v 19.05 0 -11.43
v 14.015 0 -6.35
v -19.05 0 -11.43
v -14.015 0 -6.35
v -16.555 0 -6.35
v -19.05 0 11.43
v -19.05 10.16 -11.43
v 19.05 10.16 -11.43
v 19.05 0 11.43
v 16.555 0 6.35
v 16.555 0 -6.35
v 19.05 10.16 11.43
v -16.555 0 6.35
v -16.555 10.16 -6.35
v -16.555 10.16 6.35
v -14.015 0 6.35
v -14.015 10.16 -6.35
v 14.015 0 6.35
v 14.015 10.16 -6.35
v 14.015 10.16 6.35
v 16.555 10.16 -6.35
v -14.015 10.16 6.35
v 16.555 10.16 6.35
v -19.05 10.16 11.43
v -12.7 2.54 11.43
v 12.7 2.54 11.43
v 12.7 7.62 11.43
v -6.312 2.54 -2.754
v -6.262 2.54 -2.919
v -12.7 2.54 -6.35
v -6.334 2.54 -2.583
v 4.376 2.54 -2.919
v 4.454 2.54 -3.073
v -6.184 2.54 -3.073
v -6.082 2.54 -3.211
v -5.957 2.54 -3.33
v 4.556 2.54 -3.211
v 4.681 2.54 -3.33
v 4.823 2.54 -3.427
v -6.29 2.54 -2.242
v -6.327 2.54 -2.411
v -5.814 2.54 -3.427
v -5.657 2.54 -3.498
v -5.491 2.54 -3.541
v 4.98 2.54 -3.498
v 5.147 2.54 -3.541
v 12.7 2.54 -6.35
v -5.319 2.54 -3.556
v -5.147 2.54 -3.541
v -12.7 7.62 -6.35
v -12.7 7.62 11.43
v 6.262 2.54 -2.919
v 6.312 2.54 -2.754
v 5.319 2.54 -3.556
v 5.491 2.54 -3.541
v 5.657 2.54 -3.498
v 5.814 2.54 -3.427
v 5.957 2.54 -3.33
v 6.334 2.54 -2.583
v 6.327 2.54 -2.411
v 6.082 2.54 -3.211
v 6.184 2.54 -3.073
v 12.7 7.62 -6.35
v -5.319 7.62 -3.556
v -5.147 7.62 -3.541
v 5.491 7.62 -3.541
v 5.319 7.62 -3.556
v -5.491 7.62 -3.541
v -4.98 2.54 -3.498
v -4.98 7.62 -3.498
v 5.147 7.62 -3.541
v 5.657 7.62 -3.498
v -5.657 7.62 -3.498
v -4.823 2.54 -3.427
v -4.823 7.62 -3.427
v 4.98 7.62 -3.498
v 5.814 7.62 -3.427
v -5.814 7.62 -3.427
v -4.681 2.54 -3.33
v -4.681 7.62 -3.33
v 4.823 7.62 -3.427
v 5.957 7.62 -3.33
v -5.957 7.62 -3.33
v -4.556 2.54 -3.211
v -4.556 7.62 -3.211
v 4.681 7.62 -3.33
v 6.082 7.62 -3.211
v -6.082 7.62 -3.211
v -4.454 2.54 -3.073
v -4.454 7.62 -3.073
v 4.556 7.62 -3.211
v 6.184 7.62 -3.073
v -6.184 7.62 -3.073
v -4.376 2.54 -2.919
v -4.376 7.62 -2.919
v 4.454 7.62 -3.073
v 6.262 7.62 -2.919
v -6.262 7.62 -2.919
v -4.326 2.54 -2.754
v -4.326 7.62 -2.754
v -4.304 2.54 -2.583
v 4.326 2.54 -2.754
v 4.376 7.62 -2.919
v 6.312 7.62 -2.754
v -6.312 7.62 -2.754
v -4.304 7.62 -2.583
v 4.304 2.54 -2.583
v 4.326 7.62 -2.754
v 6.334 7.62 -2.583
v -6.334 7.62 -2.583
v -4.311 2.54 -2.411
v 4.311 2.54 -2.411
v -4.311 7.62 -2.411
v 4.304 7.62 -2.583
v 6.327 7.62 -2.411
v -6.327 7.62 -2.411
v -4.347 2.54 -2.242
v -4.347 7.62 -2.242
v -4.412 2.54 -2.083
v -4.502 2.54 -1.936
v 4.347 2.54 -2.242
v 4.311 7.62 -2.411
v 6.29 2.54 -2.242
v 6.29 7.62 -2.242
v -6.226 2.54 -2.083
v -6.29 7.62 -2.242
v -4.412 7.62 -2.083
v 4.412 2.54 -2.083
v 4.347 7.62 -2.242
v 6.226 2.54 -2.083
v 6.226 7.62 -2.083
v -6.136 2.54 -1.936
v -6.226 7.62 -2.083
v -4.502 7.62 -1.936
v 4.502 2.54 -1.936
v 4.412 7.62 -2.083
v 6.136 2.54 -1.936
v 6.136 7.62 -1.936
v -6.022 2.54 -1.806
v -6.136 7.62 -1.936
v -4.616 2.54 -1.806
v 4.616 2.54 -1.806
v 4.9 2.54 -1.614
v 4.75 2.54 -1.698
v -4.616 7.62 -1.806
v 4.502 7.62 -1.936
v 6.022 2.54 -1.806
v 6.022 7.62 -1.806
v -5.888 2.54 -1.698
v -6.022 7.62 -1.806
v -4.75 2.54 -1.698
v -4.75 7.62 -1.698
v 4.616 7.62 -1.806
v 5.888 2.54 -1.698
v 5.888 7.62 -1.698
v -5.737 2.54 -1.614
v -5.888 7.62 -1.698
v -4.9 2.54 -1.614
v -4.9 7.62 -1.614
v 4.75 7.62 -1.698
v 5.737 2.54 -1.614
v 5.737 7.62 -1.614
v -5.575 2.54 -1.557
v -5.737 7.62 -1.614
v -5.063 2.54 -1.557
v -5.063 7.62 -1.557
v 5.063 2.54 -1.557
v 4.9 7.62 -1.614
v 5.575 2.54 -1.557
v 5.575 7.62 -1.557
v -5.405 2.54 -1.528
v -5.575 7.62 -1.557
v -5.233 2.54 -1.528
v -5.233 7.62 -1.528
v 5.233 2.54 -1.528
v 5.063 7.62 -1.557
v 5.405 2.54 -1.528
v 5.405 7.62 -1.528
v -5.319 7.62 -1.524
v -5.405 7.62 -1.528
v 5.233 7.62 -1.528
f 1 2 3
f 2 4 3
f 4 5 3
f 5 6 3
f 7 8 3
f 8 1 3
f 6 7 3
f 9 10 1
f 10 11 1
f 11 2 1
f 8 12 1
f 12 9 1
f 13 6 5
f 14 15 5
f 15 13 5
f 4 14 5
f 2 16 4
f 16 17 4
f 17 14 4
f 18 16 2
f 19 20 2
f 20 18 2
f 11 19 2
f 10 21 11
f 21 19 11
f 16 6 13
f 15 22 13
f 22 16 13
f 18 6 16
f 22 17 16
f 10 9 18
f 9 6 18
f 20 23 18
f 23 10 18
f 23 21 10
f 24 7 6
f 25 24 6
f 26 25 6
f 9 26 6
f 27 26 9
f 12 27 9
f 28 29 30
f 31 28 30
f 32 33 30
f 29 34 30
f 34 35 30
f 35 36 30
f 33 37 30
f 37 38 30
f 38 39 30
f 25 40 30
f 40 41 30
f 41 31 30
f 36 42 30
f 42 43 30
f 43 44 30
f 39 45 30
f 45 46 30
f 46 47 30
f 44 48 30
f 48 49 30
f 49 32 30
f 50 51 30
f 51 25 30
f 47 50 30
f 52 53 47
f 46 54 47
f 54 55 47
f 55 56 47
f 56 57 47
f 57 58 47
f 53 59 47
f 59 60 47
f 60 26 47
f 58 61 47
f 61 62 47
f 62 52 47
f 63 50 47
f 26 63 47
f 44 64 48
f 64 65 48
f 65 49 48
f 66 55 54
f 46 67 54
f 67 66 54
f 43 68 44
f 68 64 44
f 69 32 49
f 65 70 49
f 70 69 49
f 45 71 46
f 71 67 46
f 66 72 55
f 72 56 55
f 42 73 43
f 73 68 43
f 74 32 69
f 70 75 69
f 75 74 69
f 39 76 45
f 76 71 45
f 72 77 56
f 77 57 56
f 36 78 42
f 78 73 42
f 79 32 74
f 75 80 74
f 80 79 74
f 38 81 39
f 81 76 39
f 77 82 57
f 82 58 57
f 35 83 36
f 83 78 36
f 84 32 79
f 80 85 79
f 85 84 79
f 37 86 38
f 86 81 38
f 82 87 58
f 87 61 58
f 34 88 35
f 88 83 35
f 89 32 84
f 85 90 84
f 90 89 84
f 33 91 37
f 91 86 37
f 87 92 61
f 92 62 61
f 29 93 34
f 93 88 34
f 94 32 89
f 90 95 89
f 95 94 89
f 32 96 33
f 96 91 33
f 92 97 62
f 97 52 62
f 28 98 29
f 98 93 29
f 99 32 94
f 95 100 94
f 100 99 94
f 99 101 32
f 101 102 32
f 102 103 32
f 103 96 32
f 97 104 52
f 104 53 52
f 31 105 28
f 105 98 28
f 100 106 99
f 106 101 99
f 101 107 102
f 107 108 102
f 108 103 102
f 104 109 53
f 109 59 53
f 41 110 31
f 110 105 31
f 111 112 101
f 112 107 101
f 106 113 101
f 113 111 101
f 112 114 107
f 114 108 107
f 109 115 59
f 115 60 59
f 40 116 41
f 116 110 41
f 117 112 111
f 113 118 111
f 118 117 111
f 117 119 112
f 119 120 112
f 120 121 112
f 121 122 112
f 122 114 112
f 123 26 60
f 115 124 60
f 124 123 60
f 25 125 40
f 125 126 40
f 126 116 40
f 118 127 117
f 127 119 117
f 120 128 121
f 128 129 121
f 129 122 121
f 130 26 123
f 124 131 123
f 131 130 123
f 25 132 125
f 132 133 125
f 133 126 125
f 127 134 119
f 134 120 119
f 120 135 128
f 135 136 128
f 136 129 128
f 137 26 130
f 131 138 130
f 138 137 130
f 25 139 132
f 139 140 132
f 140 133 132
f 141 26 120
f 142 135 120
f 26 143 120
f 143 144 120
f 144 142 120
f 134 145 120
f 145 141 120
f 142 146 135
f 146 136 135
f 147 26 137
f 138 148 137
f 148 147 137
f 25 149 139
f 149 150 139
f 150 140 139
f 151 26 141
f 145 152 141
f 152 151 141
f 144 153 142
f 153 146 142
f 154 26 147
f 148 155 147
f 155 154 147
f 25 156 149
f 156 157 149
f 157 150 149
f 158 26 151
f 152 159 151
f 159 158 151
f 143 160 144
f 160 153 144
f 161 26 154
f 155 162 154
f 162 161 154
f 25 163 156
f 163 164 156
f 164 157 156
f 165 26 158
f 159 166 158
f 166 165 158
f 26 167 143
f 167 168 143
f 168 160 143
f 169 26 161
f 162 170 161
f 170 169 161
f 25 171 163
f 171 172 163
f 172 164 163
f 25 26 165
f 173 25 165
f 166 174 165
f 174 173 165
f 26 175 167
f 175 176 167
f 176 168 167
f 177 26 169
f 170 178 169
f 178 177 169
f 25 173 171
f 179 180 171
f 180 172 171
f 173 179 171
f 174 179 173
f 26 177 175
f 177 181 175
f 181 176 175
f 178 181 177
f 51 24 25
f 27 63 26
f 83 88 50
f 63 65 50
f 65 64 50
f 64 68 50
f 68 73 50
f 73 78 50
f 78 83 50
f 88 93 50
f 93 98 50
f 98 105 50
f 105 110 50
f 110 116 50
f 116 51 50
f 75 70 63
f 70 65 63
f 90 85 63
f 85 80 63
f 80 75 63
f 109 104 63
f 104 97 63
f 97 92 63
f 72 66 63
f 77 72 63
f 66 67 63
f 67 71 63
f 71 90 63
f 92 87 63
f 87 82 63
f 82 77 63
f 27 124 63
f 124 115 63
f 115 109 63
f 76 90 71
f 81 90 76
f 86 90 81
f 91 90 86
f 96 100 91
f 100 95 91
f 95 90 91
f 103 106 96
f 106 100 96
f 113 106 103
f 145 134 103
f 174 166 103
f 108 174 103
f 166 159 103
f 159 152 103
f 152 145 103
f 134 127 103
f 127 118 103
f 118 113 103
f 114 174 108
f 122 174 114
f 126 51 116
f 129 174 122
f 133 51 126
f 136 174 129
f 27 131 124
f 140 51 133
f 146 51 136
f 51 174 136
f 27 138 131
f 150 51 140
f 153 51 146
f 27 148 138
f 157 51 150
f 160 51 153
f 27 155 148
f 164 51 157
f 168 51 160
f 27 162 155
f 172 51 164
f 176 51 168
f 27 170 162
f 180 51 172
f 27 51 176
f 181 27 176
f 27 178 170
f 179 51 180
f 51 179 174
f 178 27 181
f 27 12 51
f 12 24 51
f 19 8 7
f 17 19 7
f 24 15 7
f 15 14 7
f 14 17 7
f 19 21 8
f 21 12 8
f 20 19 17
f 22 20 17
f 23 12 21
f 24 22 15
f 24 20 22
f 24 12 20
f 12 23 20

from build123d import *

# Parameters (mm, degrees)
SKETCH1_W           = 38.1
SKETCH1_H           = 22.86
SKETCH1_W_2         = 2.54
SKETCH1_H_2         = 12.7
BOSS_EXTRUDE2_DEPTH = 2.54
SKETCH3_R           = 1.016
BOSS_EXTRUDE3_DEPTH = 5.08
BOSS_EXTRUDE5_DEPTH = 5.08
SKETCH6_W           = 2.54
SKETCH6_H           = 12.7
CUT_EXTRUDE1_DEPTH  = 24.486417351
SKETCH4_W           = 38.1
SKETCH4_H           = 22.86
SKETCH4_W_2         = 2.54
SKETCH4_H_2         = 12.7
BOSS_EXTRUDE6_DEPTH = 2.54


with BuildPart() as part:
    # Sketch1 → Boss-Extrude2 (new body)
    with BuildSketch(Plane(origin=(0, 0, 0), x_dir=(1, 0, 0), z_dir=(0, 1, 0))):
        Rectangle(SKETCH1_W, SKETCH1_H)
        with Locations((-15.28489899, 0)):
            Rectangle(SKETCH1_W_2, SKETCH1_H_2, mode=Mode.SUBTRACT)
        with Locations((15.28489899, 0)):
            Rectangle(SKETCH1_W_2, SKETCH1_H_2, mode=Mode.SUBTRACT)
    extrude(amount=BOSS_EXTRUDE2_DEPTH)

    # Sketch3 → Boss-Extrude3 (add)
    with BuildSketch(Plane(origin=(0, 2.54, 0), x_dir=(1, 0, 0), z_dir=(0, 1, 0))):
        with Locations(Location((-5.318941048, 2.54, 0), (0, 0, 90))):
            Circle(SKETCH3_R)
        with Locations(Location((5.318941048, 2.54, 0), (0, 0, 90))):
            Circle(SKETCH3_R)
    extrude(amount=BOSS_EXTRUDE3_DEPTH)

    # Sketch5 → Boss-Extrude5 (add)
    with BuildSketch(Plane(origin=(0, 2.54, 0), x_dir=(1, 0, 0), z_dir=(0, 1, 0))):
        Polygon((-19.05, -11.43), (-19.05, 11.43), (19.05, 11.43), (19.05, -11.43), (12.7, -11.43), (12.7, 6.35), (-12.7, 6.35), (-12.7, -11.43), align=None)
    extrude(amount=BOSS_EXTRUDE5_DEPTH)

    # Sketch6 → Cut-Extrude1 (cut, through all)
    with BuildSketch(Plane(origin=(0, 7.62, 0), x_dir=(1, 0, 0), z_dir=(0, 1, 0))):
        with Locations((-15.28489899, 0)):
            Rectangle(SKETCH6_W, SKETCH6_H)
        with Locations((15.28489899, 0)):
            Rectangle(SKETCH6_W, SKETCH6_H)
    extrude(amount=-CUT_EXTRUDE1_DEPTH, mode=Mode.SUBTRACT)

    # Sketch4 → Boss-Extrude6 (add)
    with BuildSketch(Plane(origin=(0, 7.62, 0), x_dir=(1, 0, 0), z_dir=(0, 1, 0))):
        Rectangle(SKETCH4_W, SKETCH4_H)
        with Locations((-15.28489899, 0)):
            Rectangle(SKETCH4_W_2, SKETCH4_H_2, mode=Mode.SUBTRACT)
        with Locations((15.28489899, 0)):
            Rectangle(SKETCH4_W_2, SKETCH4_H_2, mode=Mode.SUBTRACT)
    extrude(amount=BOSS_EXTRUDE6_DEPTH)


solid = part.part
